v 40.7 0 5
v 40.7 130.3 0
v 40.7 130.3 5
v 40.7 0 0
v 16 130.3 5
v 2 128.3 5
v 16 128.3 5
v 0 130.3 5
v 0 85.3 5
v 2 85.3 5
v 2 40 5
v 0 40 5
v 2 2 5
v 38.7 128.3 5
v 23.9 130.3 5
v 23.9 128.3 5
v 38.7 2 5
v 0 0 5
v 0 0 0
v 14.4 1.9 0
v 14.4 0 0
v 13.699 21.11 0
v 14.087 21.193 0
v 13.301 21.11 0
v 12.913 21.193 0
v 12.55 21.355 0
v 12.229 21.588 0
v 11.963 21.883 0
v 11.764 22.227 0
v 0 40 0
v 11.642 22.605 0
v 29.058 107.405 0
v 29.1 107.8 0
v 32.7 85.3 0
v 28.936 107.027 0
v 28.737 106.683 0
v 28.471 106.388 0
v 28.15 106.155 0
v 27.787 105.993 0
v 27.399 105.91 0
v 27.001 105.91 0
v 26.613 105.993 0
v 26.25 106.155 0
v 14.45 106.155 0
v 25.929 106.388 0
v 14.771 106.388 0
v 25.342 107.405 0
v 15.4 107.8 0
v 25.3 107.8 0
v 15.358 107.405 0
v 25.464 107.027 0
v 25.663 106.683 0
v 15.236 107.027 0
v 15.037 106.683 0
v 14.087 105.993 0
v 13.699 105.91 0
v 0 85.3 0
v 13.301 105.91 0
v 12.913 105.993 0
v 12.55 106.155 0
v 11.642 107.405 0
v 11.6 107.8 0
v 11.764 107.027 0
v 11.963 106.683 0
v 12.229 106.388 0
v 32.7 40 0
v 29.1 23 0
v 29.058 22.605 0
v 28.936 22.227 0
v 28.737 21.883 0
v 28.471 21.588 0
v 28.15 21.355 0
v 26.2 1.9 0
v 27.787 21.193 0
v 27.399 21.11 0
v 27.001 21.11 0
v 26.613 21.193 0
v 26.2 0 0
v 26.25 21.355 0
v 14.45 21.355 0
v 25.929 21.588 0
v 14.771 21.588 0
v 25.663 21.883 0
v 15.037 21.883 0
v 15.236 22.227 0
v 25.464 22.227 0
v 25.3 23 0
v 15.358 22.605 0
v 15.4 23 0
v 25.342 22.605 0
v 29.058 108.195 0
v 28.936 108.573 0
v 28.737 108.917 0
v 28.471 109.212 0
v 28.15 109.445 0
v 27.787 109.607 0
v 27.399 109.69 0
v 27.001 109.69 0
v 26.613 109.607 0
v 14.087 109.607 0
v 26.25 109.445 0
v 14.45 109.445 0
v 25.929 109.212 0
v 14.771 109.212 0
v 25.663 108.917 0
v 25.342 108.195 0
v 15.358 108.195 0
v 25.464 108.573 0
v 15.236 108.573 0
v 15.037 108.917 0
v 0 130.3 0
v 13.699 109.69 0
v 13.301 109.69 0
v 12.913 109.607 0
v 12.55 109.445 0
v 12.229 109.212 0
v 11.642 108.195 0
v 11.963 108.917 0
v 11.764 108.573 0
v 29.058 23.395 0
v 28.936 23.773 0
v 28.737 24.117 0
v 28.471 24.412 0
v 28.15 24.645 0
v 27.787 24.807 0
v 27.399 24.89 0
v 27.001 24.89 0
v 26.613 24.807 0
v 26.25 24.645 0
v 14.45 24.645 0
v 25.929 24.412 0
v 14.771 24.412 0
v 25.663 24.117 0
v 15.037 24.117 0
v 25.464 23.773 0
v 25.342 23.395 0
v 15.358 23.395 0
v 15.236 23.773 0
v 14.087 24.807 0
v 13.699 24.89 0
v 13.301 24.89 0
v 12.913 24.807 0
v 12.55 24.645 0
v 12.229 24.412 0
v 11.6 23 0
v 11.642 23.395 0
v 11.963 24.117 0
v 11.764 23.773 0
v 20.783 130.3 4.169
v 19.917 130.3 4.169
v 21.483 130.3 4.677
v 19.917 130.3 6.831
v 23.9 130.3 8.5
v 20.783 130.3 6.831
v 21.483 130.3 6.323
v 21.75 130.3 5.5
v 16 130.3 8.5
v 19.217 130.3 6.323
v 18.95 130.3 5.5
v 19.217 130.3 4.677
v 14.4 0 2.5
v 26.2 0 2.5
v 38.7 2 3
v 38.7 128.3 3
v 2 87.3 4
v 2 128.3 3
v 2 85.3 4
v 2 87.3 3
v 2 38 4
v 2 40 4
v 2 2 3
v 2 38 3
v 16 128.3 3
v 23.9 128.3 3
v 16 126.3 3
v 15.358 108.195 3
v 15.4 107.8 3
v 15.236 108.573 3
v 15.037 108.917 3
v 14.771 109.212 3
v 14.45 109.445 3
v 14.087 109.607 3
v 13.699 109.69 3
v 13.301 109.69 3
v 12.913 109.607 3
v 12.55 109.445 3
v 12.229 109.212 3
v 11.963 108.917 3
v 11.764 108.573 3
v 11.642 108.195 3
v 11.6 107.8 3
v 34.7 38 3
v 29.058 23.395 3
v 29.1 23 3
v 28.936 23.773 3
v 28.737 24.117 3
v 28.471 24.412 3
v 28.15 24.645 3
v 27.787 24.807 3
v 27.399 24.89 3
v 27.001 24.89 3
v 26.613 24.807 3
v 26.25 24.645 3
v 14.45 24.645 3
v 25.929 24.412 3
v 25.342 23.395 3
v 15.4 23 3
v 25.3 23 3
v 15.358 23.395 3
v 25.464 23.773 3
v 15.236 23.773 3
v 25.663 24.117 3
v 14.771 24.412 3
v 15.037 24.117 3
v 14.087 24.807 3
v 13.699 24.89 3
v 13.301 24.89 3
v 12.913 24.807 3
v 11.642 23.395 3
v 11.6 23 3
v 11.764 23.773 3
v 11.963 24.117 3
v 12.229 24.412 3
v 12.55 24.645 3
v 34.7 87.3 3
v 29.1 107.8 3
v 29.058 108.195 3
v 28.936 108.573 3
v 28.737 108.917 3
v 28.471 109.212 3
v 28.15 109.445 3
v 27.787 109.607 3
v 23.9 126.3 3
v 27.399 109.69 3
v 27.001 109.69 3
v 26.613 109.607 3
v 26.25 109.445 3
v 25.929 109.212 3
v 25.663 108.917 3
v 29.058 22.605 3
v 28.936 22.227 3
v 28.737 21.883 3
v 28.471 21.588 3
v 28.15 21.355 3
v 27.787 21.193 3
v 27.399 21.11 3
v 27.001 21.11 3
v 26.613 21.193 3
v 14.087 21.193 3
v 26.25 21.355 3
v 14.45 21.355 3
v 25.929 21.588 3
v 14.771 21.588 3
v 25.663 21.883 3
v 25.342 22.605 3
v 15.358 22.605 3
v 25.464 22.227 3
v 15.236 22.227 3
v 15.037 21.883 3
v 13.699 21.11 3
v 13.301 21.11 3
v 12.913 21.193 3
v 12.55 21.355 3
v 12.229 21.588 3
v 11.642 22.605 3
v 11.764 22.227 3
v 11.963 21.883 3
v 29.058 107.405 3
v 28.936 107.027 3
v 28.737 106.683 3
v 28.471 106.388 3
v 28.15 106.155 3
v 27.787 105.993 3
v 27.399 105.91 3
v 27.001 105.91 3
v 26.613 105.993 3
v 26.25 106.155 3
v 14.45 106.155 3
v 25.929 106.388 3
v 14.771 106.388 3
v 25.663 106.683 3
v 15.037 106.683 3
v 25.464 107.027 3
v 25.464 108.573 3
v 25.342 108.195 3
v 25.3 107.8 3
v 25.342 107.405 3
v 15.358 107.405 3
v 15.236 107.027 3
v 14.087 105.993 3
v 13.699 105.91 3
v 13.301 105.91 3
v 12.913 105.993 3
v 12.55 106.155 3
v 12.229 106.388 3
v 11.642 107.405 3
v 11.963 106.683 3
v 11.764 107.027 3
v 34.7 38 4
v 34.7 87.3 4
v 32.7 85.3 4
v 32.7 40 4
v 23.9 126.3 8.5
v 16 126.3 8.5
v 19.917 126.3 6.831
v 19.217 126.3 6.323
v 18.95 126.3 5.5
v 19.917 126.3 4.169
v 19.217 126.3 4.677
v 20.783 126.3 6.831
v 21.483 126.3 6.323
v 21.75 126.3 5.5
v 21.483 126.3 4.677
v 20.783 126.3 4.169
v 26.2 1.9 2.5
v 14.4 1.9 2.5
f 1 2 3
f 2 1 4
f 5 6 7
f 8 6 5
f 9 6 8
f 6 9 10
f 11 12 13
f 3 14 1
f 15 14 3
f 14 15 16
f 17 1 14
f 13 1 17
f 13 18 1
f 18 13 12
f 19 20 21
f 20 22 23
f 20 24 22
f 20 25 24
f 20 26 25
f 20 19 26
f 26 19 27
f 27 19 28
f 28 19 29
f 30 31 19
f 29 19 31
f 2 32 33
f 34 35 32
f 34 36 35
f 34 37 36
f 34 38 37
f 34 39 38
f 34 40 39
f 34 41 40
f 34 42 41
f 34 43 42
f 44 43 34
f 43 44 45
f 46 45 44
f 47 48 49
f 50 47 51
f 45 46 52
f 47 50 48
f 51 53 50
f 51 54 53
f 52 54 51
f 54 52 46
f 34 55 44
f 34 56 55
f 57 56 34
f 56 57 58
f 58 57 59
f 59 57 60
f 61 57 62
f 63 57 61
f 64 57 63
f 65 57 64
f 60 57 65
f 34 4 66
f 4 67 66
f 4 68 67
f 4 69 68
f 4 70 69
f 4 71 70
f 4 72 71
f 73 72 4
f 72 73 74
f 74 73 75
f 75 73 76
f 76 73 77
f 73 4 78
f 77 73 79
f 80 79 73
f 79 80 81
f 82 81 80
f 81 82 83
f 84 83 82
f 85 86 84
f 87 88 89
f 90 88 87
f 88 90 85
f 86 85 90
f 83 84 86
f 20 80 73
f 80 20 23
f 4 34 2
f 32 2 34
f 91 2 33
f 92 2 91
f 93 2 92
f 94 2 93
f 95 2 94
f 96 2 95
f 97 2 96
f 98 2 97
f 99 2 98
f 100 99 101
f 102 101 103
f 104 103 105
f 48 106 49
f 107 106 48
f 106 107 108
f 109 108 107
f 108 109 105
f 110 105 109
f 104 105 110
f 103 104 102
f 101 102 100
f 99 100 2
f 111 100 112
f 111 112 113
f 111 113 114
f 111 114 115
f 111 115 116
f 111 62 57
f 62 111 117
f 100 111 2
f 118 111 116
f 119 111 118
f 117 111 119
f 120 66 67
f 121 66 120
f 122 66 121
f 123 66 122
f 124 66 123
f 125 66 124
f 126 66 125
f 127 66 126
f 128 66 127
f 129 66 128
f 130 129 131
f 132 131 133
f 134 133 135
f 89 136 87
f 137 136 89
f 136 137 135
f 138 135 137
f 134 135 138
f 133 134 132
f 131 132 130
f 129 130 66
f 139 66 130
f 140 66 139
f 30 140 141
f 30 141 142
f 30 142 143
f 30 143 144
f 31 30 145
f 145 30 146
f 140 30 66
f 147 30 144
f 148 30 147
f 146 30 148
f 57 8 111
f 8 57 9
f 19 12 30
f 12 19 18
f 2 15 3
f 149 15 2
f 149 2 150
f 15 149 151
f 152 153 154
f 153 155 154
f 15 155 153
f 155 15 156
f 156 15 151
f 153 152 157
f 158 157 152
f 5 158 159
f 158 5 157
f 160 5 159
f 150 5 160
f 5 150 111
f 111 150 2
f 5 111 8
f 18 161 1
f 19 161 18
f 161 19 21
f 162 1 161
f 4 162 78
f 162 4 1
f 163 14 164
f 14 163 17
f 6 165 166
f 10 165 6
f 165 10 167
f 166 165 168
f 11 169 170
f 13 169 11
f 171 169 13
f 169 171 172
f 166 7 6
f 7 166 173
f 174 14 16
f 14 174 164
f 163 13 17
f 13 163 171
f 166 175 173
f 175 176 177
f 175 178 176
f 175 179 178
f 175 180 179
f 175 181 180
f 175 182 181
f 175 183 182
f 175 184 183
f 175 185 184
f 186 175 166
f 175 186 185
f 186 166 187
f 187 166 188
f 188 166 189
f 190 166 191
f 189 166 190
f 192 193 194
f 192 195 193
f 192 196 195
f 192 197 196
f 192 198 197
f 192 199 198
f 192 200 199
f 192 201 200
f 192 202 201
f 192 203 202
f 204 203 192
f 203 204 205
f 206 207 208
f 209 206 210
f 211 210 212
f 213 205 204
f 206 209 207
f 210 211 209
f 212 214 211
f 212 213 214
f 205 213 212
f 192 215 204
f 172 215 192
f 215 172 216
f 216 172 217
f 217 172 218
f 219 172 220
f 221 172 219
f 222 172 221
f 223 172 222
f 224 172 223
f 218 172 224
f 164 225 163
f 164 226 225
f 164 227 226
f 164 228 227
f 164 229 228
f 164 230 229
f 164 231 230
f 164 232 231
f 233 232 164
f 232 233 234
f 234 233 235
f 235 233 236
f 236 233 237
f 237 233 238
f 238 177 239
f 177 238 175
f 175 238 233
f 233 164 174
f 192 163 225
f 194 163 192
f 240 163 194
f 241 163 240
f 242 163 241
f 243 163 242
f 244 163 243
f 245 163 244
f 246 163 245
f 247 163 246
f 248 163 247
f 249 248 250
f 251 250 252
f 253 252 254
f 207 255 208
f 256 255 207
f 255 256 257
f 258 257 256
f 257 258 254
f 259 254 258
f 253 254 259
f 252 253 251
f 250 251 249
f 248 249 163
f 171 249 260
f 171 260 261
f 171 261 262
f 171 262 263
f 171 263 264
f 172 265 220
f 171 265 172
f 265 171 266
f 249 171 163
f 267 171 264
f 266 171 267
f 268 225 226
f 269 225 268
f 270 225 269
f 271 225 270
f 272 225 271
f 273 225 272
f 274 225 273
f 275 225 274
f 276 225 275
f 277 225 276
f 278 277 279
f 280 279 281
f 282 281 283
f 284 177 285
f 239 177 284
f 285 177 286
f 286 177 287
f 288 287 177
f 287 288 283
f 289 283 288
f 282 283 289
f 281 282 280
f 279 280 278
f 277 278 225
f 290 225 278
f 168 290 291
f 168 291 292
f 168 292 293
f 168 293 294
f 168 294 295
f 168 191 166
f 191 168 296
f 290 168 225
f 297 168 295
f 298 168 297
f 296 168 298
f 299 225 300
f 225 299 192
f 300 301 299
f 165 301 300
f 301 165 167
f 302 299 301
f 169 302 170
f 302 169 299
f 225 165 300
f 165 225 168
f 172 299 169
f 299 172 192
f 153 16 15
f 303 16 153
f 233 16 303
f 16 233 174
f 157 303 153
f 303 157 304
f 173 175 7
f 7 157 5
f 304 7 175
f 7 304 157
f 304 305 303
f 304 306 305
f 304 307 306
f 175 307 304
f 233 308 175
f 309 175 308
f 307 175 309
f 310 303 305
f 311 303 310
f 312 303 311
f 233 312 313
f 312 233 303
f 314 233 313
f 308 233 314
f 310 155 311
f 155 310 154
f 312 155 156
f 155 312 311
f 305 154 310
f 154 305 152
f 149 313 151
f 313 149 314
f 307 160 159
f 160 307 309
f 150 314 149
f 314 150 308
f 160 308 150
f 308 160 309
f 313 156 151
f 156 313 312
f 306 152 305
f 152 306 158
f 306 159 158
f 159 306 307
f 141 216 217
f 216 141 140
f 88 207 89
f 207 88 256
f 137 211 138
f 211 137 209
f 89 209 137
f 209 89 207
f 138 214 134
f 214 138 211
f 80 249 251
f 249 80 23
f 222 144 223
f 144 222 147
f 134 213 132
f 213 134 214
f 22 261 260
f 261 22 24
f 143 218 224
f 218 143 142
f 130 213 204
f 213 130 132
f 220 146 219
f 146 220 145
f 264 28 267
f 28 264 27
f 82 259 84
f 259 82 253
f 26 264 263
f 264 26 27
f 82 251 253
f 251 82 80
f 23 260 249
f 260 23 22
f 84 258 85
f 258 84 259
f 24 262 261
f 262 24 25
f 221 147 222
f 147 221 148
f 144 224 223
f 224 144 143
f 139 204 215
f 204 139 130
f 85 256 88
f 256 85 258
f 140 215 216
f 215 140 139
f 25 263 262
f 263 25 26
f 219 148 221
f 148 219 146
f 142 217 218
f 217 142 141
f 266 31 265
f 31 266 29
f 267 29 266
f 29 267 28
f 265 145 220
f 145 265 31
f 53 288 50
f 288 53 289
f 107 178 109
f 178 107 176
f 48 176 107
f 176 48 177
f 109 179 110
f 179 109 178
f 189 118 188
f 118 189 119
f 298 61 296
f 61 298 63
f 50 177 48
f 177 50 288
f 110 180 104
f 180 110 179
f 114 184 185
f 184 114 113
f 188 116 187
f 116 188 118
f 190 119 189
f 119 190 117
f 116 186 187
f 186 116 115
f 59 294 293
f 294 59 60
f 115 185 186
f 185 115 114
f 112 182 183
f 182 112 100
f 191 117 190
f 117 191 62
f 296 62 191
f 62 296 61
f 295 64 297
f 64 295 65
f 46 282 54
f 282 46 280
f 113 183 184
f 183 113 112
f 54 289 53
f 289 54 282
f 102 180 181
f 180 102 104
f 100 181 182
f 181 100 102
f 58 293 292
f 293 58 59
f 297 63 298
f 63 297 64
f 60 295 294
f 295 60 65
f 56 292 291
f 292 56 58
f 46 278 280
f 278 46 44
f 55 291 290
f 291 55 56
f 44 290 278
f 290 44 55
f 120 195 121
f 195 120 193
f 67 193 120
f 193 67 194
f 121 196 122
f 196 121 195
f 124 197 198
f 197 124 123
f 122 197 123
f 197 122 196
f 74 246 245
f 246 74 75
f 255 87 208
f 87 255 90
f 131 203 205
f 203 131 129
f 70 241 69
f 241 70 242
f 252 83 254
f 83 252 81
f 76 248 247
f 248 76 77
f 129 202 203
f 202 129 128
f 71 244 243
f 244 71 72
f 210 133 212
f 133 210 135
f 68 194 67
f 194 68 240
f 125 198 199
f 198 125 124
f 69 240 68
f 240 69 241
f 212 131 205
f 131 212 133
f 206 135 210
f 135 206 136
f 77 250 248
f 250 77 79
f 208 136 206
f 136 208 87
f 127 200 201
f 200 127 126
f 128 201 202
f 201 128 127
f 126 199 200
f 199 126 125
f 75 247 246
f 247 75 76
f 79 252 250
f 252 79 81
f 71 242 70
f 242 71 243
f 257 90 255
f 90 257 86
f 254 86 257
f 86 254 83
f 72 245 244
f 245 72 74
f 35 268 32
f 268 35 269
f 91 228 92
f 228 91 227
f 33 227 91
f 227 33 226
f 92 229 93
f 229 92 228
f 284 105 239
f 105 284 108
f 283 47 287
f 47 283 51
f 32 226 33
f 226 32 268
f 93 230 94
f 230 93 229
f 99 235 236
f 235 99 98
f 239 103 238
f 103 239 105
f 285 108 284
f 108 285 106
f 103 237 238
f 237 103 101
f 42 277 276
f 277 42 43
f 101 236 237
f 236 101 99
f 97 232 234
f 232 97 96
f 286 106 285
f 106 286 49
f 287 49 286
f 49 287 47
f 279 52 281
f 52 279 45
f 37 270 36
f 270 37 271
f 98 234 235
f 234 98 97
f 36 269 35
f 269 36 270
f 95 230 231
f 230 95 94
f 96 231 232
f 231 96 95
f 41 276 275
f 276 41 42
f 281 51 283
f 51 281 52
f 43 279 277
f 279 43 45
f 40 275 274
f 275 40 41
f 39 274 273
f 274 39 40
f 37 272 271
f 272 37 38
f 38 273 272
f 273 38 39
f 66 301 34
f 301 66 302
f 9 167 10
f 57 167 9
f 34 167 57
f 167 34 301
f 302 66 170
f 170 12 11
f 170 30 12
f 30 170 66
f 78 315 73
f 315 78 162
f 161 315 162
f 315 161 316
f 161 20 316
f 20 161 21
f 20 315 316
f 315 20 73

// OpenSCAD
difference(){
    union() {
        // Base
        cube([40.7,130.3,3]);
        // Borde
        difference() {
            cube([40.7,130.3,5]);
            translate([2,2,-1]) 
                cube([36.7,126.3,7]);
        }
        // Borde salida cableado
        translate ([0,38,0])
            cube([34.7,49.3,4]);
        // Base tornillo
        translate ([16,126.3,0])
            cube([7.9,4,8.5]);
    }

    // Taladro tornillo
    translate ([20.35,130.8,5.5])
        rotate([90,0,0])
            cylinder(h=20, r=1.2, center=true, $fn=10);
    // Taladro sup. izq.
    translate ([13.5,23,0])
        cylinder(h=20, r=1.9, center=true, $fn=30);
    // Taladro inf. izq.
    translate ([13.5,107.8,0])
        cylinder(h=20, r=1.9, center=true, $fn=30);
    // Taladro sup. der.
    translate ([27.2,23,0])
        cylinder(h=20, r=1.9, center=true, $fn=30);
    // Taladro inf. der.
    translate ([27.2,107.8,0])
        cylinder(h=20, r=1.9, center=true, $fn=30);
    // Salida cableado
    translate ([8,40,-1])
        cube([24.7,45.3,20]);
    // Salida cableado (lateral)
    translate ([-1,40,-1])
        cube([24.7,45.3,20]);
    // Texto
    translate ([12,35,3])
        text("POD SUITE", size = 2);
    translate ([13,30,3])
        text(" HOSTEL", size = 2);
    // Cierre
    translate([14.4,-1,-1])
        cube([11.8,2.9,3.5]);
}
